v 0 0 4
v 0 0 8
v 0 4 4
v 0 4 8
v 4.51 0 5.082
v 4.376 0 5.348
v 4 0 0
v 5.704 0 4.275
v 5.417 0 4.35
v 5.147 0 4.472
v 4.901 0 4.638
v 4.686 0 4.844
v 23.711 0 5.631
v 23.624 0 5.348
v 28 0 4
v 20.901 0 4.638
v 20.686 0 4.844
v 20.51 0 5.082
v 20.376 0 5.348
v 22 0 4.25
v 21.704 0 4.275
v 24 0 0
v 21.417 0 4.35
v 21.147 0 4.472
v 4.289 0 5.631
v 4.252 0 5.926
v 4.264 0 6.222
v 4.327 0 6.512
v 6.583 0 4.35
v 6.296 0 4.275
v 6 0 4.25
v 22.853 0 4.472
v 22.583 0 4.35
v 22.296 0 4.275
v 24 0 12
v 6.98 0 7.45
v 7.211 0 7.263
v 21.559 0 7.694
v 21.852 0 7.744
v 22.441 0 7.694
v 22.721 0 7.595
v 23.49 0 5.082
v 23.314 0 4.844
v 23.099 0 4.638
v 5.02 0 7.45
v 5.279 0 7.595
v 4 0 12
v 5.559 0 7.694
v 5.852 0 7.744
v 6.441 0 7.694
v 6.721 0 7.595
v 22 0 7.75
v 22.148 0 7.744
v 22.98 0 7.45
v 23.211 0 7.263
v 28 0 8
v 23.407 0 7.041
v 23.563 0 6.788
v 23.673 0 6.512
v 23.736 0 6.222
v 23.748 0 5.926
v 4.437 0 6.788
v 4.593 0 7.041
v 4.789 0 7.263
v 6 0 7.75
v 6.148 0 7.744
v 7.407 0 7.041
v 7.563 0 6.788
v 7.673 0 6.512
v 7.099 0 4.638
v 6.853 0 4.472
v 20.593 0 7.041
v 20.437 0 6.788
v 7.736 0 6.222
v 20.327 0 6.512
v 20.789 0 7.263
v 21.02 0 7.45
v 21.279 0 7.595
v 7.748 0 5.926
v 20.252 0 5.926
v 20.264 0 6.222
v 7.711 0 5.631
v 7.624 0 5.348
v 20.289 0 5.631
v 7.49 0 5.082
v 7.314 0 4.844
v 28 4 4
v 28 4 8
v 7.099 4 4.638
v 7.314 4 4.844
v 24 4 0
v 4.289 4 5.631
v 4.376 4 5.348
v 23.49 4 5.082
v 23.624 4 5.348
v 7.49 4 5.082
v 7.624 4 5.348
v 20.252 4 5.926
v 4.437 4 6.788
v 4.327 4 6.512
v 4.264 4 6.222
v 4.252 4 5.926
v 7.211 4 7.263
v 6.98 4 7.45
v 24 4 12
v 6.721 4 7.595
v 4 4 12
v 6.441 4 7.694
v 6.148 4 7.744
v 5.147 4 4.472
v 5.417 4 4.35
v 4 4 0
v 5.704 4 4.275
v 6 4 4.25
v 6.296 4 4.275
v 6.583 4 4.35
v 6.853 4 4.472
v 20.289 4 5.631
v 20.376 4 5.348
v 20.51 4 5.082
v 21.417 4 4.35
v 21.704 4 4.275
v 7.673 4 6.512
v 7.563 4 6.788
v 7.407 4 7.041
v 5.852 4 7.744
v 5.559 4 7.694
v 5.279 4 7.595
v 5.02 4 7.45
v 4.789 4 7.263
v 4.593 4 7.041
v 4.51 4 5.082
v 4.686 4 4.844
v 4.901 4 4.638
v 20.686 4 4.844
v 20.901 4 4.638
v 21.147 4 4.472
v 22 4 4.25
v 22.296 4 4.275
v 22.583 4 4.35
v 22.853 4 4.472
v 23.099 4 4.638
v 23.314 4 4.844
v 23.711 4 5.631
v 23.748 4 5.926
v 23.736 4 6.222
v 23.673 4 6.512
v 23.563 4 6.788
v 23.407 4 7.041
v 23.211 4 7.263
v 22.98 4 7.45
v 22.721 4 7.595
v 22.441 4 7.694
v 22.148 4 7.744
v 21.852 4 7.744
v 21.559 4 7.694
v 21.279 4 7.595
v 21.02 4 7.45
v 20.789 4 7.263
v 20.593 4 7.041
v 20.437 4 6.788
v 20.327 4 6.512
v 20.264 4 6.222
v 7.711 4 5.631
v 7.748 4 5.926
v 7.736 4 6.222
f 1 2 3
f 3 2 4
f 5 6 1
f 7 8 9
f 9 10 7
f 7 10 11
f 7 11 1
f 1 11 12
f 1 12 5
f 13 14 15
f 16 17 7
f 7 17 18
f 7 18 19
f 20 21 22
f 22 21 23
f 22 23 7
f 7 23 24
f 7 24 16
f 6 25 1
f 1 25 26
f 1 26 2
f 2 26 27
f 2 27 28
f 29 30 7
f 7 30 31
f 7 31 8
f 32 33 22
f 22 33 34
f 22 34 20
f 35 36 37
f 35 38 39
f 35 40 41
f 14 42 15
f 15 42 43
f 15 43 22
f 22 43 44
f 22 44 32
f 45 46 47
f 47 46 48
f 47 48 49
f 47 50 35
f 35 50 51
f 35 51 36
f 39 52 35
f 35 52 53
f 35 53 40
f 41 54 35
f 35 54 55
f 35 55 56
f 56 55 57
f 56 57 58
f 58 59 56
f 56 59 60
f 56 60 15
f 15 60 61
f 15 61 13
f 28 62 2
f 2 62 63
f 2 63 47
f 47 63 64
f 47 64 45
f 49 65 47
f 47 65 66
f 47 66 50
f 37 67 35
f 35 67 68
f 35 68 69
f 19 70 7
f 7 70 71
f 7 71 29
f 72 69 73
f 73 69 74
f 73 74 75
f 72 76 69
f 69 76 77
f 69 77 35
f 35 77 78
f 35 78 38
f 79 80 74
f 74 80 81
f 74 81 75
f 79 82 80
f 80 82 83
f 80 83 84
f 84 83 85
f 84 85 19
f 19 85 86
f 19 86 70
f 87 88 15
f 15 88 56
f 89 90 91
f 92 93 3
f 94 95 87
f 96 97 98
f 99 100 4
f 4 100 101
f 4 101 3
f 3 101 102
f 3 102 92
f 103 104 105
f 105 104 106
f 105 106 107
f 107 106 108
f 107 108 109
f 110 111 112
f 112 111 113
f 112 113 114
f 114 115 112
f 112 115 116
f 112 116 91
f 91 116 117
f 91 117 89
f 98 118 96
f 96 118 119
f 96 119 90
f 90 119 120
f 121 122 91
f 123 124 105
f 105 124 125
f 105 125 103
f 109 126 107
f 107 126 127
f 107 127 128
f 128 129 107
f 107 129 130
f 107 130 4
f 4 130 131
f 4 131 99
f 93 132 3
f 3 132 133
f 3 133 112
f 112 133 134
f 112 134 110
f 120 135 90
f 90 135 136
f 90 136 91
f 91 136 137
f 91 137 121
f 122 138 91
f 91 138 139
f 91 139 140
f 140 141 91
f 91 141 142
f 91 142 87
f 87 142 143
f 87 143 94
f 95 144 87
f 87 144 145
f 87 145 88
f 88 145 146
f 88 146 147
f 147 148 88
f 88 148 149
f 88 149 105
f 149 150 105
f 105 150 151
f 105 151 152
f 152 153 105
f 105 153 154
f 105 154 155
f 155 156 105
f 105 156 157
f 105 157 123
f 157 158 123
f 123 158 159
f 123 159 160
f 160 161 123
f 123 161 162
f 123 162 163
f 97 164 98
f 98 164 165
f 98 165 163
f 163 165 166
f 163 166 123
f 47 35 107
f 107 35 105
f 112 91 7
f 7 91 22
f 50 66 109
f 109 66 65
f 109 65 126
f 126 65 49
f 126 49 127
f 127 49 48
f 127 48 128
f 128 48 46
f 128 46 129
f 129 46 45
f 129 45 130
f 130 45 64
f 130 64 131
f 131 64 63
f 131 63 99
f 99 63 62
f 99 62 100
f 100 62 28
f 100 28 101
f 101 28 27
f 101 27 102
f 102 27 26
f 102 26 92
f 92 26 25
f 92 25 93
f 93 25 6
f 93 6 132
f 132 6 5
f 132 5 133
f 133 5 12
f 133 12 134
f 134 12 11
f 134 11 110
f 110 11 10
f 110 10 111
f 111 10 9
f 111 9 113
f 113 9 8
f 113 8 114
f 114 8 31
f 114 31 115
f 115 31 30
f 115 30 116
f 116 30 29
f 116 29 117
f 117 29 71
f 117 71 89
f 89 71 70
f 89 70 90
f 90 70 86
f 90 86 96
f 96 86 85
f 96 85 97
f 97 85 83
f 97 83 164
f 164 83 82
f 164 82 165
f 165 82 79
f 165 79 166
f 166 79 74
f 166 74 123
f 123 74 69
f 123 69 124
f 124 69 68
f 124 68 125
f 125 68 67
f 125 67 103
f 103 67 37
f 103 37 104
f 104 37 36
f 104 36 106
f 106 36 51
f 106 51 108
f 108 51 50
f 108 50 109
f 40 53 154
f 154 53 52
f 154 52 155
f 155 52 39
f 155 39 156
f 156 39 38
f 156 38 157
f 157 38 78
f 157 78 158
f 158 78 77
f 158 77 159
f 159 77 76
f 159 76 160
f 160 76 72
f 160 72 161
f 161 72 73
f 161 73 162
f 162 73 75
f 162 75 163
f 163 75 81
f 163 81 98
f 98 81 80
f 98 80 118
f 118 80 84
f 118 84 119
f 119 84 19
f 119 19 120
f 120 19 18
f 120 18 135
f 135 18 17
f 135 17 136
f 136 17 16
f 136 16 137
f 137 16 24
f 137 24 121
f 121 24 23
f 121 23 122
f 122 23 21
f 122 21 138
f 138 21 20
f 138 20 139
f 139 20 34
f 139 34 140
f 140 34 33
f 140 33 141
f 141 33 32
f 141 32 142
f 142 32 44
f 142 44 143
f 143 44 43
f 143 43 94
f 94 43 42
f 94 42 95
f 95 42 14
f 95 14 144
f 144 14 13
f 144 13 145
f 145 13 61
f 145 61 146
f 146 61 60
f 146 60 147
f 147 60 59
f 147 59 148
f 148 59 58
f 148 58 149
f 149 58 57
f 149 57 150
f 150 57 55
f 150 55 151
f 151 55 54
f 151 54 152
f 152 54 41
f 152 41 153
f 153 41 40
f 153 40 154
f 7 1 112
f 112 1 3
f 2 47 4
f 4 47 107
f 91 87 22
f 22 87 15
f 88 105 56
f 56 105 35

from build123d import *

# Parameters (mm, degrees)
BOSS_EXTRUDE1_DEPTH     = 12
SKETCH2_R               = 1.75
CUT_EXTRUDE1_DEPTH      = 1
CUT_EXTRUDE1_DEPTH_BACK = 5
CHAMFER1_SIZE           = 4


with BuildPart() as part:
    # Sketch1 → Boss-Extrude1 (new body)
    with BuildSketch(Plane.XY):
        Polygon((0, 0), (12, 0), (16, 0), (28, 0), (28, 4), (0, 4), align=None)
    extrude(amount=BOSS_EXTRUDE1_DEPTH)

    # Sketch2 → Cut-Extrude1 (cut, two sides)
    with BuildSketch(Plane(origin=(0, 0, 0), x_dir=(-1, 0, 0), z_dir=(0, -1, 0))) as cut_extrude1_sk:
        with Locations((-6, -6)):
            Circle(SKETCH2_R)
        with Locations((-22, -6)):
            Circle(SKETCH2_R)
    extrude(amount=CUT_EXTRUDE1_DEPTH, mode=Mode.SUBTRACT)
    extrude(cut_extrude1_sk.sketch, amount=-CUT_EXTRUDE1_DEPTH_BACK, mode=Mode.SUBTRACT)

    # Chamfer1
    chamfer1_edges = [part.edges().sort_by_distance(p)[0] for p in [
        (28, 2, 12),
        (0, 2, 12),
        (28, 2, 0),
        (0, 2, 0),
    ]]
    chamfer(chamfer1_edges, length=CHAMFER1_SIZE)


solid = part.part
